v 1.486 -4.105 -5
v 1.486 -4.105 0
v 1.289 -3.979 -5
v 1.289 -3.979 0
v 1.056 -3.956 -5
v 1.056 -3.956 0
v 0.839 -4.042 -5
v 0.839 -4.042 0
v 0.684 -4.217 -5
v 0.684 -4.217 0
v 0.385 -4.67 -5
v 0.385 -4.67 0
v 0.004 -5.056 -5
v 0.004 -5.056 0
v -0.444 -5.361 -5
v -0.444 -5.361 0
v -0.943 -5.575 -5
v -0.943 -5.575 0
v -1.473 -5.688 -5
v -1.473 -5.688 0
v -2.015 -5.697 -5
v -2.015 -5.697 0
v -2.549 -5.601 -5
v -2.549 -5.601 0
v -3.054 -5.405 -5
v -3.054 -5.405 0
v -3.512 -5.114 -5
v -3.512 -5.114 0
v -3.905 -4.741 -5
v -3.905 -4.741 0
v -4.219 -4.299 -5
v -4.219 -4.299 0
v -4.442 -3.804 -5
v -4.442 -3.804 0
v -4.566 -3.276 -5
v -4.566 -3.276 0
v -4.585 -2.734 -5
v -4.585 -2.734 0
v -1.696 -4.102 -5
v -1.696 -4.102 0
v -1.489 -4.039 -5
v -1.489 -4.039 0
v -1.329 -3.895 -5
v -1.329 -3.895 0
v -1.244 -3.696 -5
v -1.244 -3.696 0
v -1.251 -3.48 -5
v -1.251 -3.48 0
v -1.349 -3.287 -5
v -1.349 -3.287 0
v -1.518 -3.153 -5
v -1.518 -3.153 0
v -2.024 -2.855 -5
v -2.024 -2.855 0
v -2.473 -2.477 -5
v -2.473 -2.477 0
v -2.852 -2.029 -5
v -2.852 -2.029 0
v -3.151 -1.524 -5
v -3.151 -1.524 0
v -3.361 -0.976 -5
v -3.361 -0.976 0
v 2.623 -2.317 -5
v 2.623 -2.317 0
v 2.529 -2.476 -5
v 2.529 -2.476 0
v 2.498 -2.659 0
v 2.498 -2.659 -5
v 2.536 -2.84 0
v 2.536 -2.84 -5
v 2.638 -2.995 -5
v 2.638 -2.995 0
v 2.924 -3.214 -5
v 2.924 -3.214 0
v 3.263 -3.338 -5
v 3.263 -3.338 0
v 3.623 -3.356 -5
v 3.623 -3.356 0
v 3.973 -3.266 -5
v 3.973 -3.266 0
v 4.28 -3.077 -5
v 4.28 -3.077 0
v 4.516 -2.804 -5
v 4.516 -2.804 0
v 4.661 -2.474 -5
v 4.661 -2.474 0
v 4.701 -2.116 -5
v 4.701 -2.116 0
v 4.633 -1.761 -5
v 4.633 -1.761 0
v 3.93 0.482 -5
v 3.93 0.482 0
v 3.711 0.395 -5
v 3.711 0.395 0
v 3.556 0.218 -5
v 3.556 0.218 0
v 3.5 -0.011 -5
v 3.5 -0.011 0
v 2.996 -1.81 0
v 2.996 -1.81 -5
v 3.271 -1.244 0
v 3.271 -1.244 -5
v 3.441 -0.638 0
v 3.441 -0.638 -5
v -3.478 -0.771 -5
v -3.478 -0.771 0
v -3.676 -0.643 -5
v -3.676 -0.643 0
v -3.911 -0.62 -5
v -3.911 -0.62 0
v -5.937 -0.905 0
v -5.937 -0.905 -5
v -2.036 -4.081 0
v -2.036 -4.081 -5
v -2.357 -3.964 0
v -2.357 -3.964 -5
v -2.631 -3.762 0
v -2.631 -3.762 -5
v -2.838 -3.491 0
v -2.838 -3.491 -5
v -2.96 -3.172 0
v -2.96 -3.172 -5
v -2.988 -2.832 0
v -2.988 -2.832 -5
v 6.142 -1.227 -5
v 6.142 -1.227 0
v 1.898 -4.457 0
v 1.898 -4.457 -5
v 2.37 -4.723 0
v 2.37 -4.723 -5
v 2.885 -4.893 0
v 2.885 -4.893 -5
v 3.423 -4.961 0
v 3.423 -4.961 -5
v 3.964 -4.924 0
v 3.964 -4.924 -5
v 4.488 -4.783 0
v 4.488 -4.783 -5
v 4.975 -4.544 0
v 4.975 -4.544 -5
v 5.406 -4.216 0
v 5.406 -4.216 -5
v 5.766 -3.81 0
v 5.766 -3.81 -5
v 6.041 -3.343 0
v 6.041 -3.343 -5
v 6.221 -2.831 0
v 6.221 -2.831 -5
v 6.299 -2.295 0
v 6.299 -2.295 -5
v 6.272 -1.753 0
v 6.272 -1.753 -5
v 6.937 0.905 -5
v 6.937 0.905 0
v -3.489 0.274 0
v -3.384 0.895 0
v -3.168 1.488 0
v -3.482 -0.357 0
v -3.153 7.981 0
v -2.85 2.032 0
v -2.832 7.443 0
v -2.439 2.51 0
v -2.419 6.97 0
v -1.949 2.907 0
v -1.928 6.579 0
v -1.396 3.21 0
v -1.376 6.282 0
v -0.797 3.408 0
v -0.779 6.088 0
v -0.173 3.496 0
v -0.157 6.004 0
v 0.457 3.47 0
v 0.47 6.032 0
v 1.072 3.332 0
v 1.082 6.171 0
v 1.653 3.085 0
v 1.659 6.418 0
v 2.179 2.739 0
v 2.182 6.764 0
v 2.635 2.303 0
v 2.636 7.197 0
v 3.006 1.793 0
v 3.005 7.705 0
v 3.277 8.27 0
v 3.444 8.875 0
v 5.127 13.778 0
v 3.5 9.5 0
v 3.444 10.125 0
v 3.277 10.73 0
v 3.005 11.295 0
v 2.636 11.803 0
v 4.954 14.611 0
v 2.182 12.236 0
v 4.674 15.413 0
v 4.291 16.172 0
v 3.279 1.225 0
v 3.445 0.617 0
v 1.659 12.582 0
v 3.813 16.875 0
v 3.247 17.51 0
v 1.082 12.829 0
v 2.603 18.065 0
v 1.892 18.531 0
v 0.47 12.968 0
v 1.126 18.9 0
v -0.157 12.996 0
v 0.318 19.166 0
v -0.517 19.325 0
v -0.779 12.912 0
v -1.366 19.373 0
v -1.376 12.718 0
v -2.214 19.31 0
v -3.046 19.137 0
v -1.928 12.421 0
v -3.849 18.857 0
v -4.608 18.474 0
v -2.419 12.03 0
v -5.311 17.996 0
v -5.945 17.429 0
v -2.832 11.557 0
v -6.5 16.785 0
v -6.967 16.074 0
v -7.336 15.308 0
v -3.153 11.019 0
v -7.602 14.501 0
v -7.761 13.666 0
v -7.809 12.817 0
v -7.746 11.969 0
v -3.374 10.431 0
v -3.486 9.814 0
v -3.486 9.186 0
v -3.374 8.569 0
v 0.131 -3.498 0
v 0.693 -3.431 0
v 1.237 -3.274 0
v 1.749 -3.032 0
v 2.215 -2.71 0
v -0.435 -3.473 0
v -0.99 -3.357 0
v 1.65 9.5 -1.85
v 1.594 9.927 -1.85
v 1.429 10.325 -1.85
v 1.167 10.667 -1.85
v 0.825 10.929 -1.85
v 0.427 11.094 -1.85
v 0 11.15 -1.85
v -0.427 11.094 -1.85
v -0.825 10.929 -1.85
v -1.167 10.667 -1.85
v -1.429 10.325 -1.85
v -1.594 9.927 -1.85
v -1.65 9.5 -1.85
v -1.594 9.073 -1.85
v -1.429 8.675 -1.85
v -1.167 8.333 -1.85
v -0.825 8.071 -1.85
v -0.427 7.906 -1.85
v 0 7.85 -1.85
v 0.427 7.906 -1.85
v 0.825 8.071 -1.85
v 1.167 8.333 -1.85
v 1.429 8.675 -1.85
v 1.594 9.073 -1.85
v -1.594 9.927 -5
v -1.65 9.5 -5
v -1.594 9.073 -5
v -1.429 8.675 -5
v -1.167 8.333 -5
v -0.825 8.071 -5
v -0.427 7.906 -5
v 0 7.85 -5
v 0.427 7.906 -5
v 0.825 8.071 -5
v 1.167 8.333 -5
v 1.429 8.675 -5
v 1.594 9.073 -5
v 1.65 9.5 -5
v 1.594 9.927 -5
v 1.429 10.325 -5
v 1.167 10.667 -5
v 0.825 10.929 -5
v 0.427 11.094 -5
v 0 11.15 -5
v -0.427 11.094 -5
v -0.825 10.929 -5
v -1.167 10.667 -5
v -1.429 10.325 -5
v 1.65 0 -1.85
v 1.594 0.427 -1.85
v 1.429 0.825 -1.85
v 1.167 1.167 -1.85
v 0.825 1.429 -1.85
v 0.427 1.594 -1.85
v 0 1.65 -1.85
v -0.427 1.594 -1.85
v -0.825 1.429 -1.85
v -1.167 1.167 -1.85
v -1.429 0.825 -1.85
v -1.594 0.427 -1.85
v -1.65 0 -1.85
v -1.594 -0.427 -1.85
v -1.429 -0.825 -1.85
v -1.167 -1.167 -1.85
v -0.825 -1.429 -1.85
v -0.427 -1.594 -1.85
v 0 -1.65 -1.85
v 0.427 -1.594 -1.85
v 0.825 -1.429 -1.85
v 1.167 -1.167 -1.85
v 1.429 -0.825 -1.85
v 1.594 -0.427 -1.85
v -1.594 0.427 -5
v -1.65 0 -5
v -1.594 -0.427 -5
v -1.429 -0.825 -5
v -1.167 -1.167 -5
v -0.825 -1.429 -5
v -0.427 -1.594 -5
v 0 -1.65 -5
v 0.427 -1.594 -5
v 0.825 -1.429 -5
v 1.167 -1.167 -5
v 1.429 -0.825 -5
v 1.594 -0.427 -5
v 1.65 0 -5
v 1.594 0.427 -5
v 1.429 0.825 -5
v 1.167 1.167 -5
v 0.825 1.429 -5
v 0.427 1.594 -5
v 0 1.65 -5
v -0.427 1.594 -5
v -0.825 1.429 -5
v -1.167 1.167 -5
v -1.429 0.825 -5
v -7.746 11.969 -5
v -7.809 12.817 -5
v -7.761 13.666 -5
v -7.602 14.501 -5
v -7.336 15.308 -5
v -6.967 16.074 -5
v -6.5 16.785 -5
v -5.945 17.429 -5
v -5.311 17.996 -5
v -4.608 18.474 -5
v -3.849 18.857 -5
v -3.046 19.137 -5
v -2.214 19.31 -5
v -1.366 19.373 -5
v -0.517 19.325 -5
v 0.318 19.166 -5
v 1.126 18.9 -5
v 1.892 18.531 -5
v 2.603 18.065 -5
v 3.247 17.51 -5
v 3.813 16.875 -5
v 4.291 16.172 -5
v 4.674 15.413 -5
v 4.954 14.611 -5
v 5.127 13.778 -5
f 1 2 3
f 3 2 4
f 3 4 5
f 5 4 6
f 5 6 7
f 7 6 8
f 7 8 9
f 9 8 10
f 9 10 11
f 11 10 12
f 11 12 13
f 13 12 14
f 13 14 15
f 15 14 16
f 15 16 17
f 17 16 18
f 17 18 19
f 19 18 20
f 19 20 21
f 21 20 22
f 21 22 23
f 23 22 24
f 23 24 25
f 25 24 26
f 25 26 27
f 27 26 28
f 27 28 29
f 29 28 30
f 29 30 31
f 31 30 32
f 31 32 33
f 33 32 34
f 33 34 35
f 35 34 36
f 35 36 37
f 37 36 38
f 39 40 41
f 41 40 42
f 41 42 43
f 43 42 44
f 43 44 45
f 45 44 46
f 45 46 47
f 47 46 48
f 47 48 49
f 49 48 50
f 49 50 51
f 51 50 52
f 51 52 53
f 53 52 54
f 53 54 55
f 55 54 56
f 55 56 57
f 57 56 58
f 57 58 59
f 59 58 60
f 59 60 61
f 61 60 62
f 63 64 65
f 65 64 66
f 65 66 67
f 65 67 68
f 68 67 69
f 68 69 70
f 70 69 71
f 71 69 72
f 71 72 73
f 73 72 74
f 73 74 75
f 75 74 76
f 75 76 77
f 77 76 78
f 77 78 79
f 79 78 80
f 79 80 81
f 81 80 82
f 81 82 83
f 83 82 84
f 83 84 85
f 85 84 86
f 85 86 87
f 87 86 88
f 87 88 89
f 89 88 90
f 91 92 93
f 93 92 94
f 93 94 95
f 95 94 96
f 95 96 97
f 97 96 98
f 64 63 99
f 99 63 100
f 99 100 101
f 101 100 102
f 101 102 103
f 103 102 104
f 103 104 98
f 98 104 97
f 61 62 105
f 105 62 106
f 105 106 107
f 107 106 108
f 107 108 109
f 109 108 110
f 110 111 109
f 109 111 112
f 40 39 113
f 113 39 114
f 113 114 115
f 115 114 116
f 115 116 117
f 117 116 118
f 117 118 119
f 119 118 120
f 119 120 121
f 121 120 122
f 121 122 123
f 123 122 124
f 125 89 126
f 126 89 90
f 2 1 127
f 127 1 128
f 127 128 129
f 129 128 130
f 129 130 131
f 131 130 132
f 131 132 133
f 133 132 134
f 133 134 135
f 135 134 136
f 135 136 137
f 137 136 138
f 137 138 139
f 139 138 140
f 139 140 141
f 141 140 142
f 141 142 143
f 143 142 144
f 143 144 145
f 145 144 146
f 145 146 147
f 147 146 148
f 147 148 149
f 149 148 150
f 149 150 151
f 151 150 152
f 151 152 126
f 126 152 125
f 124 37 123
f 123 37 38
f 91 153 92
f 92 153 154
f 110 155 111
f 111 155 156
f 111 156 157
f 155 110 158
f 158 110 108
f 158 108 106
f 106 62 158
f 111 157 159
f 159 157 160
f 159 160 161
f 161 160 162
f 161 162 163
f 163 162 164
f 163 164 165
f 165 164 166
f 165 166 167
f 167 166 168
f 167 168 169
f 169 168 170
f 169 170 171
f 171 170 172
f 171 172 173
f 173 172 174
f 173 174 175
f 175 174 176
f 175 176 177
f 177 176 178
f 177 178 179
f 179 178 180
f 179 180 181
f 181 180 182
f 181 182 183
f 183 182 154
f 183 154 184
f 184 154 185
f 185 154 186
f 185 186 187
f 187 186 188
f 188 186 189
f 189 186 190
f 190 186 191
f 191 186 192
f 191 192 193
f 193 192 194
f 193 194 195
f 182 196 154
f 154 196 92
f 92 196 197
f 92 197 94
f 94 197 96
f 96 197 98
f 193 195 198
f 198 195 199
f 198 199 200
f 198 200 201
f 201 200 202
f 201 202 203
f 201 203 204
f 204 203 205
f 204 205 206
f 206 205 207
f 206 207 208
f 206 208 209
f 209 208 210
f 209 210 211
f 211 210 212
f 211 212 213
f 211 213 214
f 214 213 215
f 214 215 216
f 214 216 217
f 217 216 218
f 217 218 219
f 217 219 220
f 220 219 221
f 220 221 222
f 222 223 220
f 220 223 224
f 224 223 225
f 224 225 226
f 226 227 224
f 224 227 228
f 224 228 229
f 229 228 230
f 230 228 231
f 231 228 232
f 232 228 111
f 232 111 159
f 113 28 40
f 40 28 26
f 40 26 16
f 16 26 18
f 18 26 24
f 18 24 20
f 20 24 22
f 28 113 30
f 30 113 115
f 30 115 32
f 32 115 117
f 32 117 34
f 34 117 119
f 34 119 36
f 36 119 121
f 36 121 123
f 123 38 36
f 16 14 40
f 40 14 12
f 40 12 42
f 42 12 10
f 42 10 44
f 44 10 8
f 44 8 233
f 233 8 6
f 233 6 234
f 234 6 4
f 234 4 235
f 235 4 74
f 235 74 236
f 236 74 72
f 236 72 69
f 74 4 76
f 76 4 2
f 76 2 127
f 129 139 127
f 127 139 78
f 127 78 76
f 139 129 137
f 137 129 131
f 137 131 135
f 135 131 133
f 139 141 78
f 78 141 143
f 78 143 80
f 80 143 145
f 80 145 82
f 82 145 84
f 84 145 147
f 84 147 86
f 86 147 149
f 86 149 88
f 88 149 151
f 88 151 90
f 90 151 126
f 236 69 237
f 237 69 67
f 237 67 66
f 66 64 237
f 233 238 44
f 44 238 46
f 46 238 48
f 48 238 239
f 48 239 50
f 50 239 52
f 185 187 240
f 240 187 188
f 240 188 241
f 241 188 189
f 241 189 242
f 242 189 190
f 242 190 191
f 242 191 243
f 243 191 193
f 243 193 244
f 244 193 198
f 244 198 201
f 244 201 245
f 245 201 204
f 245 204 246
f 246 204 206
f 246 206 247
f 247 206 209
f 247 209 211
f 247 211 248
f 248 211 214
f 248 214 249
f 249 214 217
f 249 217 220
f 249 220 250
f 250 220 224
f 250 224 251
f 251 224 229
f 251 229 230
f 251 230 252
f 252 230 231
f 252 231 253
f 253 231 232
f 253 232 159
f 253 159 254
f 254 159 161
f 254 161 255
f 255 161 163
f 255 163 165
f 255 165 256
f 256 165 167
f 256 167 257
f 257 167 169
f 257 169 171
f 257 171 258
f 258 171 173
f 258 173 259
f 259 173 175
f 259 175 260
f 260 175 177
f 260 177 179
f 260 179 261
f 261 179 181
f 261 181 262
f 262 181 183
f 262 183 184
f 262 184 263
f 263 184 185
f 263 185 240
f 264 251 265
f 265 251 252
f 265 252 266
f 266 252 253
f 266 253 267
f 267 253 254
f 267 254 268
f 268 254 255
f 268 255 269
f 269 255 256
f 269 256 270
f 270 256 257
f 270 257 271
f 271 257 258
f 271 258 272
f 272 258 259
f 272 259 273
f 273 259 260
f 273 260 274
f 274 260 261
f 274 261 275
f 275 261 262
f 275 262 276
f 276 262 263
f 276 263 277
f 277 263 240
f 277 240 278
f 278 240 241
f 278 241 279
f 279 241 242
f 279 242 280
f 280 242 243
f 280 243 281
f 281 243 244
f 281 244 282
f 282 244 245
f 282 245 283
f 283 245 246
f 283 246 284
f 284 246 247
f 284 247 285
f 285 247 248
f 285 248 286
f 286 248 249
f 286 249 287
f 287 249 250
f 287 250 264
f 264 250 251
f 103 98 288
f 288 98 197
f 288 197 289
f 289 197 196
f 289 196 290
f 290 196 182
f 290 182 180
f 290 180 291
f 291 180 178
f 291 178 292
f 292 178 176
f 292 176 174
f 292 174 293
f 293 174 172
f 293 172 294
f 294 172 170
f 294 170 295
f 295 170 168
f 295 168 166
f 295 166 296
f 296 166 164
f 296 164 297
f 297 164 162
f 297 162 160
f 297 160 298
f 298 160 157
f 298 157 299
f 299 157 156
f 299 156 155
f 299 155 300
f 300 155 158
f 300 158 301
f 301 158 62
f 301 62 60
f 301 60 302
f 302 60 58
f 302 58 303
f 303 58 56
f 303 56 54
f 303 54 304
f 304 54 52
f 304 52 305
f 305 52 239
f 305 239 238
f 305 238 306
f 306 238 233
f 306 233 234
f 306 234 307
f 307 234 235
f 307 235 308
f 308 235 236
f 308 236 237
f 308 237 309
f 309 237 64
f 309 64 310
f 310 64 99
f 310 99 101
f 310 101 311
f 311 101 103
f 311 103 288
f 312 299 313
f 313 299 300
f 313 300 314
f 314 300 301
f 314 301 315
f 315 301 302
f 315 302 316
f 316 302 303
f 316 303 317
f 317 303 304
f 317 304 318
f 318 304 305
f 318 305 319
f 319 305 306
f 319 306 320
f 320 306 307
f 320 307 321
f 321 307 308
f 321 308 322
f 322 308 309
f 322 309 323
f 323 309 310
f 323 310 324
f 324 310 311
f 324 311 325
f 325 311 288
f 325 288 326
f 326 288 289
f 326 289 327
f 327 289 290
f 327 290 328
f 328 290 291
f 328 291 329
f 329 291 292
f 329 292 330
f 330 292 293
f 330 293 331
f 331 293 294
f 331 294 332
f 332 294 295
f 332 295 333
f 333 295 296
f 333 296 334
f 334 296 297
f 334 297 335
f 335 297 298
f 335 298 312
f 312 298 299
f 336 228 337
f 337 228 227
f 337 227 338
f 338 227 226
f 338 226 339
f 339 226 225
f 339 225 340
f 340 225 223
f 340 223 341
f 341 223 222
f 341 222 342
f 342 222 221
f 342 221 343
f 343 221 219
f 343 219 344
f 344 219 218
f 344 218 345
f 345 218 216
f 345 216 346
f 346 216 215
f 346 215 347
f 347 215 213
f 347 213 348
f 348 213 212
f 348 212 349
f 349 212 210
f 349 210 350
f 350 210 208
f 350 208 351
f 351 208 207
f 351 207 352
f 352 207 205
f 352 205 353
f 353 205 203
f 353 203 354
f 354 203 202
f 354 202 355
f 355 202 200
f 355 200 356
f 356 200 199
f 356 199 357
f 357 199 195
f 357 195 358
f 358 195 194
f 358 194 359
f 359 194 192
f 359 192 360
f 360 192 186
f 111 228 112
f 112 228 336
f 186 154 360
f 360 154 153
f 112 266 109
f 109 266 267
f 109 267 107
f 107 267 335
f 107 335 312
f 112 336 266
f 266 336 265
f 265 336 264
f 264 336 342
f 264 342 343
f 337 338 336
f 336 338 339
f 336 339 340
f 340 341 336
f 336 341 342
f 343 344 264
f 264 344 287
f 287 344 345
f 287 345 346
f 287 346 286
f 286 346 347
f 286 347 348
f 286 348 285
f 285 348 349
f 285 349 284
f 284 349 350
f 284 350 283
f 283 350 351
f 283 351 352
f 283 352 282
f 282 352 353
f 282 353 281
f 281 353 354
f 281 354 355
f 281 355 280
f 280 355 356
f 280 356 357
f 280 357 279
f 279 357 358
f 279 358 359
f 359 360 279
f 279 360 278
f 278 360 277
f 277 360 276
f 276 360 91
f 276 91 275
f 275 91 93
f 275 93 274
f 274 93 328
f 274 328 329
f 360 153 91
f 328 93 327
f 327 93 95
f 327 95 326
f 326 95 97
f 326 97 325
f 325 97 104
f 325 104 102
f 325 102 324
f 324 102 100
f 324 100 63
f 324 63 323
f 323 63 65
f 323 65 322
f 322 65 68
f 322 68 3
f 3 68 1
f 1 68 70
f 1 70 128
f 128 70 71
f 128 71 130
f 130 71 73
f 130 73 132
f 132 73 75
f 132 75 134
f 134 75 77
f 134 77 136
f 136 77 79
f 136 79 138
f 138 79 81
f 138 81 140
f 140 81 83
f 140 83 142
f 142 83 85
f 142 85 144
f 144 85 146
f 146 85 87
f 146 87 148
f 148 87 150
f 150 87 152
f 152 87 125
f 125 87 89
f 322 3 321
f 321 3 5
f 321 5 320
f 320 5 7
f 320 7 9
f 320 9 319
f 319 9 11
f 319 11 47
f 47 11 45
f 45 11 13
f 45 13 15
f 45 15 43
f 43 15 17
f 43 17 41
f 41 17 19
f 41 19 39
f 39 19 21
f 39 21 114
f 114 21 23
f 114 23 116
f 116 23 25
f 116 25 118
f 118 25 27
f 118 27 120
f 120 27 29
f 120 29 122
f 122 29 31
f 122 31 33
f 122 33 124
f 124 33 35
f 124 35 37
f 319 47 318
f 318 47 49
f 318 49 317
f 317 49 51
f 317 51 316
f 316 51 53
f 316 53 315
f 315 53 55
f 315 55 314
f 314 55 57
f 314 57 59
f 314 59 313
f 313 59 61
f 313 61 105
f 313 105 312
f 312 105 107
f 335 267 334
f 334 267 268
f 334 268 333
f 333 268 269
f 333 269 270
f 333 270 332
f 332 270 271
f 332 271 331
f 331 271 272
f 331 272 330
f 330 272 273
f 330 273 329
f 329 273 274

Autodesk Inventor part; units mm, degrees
ref_plane "YZ Plane" through (0, 0, 0) normal (1, 0, 0) x (0, 1, 0)
ref_plane "XZ Plane" through (0, 0, 0) normal (0, 1, 0) x (-1, 0, 0)
ref_plane "XY Plane" through (0, 0, 0) normal (0, 0, 1) x (1, 0, 0)
sketch "Skizze1" plane through (0, 0, 0) normal (0, 0, 1) x (1, 0, 0)
  line L0 (0.5, 0) -> (-1.3093, 12.8735) construction
  line L1 (6.9367, 0.9046) -> (5.1275, 13.7781)
  line L2 (-7.746, 11.9689) -> (-5.9367, -0.9046)
  arc A0 (-5.9367, -0.9046) -> (6.9367, 0.9046) centre (0.5, 0) ccw
  arc A1 (5.1275, 13.7781) -> (-7.746, 11.9689) centre (-1.3093, 12.8735) ccw
  line L3 (0, 0) -> (0, 9.5) construction
  line L4 (5, -11) -> (-5, -11) construction
  line L5 (0, 0) -> (0, -11) construction
  line L6 (-8.5, 9.1711) -> (-8.5, -11) construction
  dimension "d0" = 13
  dimension "d1" = 13
  dimension "d14" = 9.5
  dimension "d17" = 8
  dimension "d26" = 11
  dimension "d27" = 10
  dimension "d28" = 11
  dimension "d29" = 8.5
  dimension "d30" = 9
extrude "Extrusion1" add sketch "Skizze1" against normal blind 5
hole "Bohrung2" at (0, 9.5, 0) at (0, 0, 0) direction (0, 0, -1) diameter 3.3 end through all countersink diameter 7 countersink angle 90
sketch "Skizze4" plane through (0, 0, 0) normal (0, 0, 1) x (1, 0, 0)
  circle A0 centre (0, 0) radius 3.5 projected
  arc A1 (2.3743, -2.5715) -> (4.6334, -1.7614) centre (3.5024, -2.1623) ccw
  arc A2 (0.9725, -3.3622) -> (6.1415, -1.2268) centre (3.5024, -2.1623) ccw
  arc A3 (-5.9367, -0.9046) -> (6.9367, 0.9046) centre (0.5, 0) ccw projected
  line L0 (4.6334, -1.7614) -> (6.1415, -1.2268)
  line L1 (-5.9367, -0.9046) -> (6.9367, 0.9046)
  line L2 (0.5, 0) -> (1.4046, -6.4367) construction
  arc A4 (-4.5848, -2.7343) -> (0.9725, -3.3622) centre (-1.7901, -2.9061) ccw
  arc A5 (-2.9878, -2.8325) -> (-0.7092, -3.4274) centre (-1.7901, -2.9061) ccw
  line L3 (-2.9878, -2.8325) -> (-4.5848, -2.7343)
  point P0 (-3.4556, -0.5559)
  point P1 (-3.5231, -5.1053)
  point P2 (5.7745, -3.7986)
  point P3 (3.4749, 0.4181)
  dimension "d38" = 1.2
  dimension "d39" = 1.6
  dimension "d40" = 2
  dimension "d41" = 1.6
  dimension "d42" = 1.2
  dimension "d43" = 2
extrude "Extrusion3" cut sketch "Skizze4" against normal through all contours A5 L3 A4 A3 L1 A0 | A2 A3 A4 | A0 L1 A3 A2 L0 A1
fillet "Rundung2" radius 0.5 5 edges at (-3.4556, -0.5559, -2.5) (3.4749, 0.4181, -2.5) (2.3743, -2.5715, -2.5) (-0.7092, -3.4274, -2.5) (0.9725, -3.3622, -2.5)
equation "\"d28\" = d_Boden"
equation "\"d30\" = d_Vorne"
equation "\"d41\" = d39"
equation "\"d42\" = d38"
equation "\"d43\" = d40"
equation "\"d_Boden\" = 11"
equation "\"d_Vorne\" = 9"
properties part number "Dribbler Slider" material "Gummi, Silikon"
